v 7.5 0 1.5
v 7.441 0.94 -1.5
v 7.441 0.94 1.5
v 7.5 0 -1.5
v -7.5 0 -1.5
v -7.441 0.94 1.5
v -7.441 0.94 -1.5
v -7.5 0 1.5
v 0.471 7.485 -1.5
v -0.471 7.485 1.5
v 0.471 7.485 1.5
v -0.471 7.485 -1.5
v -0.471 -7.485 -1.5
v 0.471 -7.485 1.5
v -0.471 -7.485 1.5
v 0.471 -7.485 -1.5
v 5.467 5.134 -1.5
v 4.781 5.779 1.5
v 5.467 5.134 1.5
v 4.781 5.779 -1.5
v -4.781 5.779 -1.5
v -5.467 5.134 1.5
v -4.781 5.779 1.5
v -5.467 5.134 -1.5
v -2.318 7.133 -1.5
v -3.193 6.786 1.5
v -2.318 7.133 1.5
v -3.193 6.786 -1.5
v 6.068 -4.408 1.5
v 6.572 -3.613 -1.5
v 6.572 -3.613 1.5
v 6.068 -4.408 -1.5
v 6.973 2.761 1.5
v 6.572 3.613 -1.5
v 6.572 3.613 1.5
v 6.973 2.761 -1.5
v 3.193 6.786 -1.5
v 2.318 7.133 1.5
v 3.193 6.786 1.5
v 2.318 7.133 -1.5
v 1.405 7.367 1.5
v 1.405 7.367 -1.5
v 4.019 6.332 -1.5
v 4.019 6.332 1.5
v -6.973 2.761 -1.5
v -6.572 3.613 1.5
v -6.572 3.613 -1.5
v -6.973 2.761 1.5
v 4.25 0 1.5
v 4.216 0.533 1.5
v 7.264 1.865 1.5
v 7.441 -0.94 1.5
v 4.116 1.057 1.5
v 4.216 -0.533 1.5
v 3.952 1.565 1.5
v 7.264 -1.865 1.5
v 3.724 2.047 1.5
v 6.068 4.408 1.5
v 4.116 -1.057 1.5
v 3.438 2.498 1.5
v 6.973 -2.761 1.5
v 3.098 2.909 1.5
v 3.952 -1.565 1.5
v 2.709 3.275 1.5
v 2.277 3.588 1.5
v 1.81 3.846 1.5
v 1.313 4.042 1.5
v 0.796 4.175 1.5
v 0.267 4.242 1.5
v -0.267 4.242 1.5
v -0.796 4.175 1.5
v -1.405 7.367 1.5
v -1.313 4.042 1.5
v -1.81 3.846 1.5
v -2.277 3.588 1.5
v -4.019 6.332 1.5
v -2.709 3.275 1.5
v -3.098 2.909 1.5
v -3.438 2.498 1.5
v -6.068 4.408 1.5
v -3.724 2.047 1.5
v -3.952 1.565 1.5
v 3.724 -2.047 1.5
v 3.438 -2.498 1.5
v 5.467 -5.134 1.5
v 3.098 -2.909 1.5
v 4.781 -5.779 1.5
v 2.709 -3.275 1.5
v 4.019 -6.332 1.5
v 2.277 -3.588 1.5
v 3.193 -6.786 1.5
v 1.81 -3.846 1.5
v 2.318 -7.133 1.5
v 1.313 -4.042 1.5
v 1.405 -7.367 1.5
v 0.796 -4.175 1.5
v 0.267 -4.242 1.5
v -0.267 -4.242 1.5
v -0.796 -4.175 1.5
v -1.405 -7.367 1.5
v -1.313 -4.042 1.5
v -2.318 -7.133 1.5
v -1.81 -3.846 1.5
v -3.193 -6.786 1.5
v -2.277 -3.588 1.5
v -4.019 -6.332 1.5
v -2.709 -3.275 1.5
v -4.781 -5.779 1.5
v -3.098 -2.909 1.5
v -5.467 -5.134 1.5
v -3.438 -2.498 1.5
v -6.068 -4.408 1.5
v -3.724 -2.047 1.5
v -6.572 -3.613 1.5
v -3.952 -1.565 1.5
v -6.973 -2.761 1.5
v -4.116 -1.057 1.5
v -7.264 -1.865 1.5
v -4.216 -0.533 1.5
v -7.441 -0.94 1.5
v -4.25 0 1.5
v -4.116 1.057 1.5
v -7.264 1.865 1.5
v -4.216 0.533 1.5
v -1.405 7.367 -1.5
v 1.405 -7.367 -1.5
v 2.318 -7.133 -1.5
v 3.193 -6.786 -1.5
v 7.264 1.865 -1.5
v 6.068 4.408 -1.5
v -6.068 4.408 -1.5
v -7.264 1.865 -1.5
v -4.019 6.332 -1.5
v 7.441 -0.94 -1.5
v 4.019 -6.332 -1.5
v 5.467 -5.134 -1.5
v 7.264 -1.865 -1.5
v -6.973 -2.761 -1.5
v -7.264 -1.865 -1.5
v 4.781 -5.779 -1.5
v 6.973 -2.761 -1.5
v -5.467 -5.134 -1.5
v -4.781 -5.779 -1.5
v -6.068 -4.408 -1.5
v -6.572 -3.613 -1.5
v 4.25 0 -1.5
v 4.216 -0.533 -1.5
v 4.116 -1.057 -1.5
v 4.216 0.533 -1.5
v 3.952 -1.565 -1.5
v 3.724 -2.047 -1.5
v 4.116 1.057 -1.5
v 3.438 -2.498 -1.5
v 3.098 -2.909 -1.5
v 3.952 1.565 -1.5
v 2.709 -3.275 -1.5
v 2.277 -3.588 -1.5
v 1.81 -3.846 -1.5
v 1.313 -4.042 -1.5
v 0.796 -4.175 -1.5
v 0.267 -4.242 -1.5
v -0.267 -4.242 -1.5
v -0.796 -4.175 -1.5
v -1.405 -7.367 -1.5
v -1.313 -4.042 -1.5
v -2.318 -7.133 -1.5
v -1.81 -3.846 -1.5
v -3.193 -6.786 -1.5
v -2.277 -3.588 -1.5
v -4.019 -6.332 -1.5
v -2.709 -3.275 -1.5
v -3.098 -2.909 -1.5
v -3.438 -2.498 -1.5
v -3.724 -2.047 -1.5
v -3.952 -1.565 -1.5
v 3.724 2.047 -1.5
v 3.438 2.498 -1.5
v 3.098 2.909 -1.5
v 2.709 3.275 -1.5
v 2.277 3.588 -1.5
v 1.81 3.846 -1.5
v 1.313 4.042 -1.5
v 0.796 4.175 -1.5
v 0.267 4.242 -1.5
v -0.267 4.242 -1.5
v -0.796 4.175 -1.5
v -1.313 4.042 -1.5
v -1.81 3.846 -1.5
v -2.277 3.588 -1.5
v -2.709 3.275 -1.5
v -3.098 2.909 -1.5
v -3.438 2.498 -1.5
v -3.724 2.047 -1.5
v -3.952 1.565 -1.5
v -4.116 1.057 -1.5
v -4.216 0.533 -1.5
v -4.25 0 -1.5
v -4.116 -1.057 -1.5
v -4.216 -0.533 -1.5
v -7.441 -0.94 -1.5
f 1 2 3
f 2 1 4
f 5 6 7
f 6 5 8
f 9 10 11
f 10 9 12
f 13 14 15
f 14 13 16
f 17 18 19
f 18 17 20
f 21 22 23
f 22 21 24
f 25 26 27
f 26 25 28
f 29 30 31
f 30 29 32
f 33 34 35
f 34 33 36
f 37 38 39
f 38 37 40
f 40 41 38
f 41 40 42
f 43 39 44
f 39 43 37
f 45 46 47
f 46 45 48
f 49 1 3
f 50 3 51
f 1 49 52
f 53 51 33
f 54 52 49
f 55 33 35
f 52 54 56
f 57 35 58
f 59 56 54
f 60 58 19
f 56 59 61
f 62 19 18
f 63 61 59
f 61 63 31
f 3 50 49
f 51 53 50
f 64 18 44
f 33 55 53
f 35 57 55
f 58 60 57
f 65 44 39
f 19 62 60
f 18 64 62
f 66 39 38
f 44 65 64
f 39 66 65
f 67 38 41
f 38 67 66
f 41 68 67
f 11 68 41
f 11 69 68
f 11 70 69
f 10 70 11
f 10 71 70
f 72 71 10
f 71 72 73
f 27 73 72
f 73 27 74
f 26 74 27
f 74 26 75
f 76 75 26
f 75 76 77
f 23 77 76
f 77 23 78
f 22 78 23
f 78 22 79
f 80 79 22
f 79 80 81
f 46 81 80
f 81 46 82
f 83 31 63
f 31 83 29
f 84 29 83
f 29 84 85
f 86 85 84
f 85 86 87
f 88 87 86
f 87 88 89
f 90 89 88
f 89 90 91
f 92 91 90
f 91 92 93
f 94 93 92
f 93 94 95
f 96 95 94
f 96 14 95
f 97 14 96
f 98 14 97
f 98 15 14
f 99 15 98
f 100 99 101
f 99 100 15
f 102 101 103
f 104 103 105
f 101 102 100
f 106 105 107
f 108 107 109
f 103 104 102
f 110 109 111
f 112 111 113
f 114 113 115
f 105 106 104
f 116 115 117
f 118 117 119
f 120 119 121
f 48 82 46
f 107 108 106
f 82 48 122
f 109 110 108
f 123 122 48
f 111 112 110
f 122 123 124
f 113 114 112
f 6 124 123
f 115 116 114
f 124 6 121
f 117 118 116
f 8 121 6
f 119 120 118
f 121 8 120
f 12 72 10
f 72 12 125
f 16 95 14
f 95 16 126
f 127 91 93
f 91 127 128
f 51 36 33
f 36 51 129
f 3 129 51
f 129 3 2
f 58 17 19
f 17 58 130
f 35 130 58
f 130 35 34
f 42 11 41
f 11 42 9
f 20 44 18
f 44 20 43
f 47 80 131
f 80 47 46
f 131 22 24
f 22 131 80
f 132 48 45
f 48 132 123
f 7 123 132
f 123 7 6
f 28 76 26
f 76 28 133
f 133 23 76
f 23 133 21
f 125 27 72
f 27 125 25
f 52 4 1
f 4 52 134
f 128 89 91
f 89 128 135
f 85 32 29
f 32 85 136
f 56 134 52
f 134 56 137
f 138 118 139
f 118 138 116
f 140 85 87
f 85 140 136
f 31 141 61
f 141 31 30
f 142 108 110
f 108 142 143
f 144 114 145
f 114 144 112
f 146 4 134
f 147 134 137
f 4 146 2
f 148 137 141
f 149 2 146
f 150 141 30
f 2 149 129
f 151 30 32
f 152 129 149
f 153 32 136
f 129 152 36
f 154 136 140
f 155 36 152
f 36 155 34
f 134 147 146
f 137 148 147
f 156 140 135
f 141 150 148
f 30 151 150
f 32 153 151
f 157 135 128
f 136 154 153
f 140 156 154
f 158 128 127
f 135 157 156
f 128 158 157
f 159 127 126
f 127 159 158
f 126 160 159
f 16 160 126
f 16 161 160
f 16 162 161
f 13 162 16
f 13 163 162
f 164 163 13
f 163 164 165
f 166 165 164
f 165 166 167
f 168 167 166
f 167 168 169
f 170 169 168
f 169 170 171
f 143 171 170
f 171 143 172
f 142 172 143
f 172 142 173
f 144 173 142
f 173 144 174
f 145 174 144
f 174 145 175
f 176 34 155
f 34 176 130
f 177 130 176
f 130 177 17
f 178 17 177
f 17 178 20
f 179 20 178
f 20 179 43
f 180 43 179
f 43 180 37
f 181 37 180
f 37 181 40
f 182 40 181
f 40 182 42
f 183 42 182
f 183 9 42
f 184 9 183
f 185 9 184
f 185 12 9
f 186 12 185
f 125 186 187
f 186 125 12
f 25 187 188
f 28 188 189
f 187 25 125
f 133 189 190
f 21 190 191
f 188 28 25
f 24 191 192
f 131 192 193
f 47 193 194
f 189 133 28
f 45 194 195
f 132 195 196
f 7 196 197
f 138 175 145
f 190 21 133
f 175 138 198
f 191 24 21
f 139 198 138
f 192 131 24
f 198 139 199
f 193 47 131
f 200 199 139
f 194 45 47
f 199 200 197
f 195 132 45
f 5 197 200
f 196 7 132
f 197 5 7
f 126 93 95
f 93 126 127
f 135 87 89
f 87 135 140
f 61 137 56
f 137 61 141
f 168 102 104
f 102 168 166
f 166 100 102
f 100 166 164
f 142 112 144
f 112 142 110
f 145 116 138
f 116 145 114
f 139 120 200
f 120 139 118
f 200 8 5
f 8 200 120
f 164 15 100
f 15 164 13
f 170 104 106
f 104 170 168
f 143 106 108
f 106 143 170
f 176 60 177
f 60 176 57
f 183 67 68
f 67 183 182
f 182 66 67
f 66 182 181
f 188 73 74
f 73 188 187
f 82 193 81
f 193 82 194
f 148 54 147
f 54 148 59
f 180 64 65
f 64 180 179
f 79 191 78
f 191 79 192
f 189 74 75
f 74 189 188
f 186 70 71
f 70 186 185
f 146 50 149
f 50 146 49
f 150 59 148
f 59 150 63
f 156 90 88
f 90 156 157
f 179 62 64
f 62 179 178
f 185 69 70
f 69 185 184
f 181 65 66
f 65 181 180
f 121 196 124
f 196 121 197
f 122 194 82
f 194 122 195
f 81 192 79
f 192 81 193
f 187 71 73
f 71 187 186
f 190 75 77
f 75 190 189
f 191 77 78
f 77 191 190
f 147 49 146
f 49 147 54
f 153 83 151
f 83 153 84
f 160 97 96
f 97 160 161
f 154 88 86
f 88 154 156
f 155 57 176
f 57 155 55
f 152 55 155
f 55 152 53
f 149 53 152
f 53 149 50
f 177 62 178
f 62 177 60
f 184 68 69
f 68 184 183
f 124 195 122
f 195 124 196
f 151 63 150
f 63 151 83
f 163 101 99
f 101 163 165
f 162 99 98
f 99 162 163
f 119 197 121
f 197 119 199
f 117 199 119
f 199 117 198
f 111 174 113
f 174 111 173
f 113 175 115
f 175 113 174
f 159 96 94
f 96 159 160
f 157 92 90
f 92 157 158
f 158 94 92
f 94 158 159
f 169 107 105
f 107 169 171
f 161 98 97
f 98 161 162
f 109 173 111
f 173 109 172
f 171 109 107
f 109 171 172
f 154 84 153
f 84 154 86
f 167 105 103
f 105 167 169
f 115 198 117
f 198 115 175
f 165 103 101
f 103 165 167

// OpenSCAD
$fn = 50;


difference() {
	union() {
		translate(v = [0, 0, -1.5000000000]) {
			cylinder(h = 3, r = 7.5000000000);
		}
	}
	union() {
		translate(v = [0, 0, -100.0000000000]) {
			cylinder(h = 200, r = 4.2500000000);
		}
	}
}
